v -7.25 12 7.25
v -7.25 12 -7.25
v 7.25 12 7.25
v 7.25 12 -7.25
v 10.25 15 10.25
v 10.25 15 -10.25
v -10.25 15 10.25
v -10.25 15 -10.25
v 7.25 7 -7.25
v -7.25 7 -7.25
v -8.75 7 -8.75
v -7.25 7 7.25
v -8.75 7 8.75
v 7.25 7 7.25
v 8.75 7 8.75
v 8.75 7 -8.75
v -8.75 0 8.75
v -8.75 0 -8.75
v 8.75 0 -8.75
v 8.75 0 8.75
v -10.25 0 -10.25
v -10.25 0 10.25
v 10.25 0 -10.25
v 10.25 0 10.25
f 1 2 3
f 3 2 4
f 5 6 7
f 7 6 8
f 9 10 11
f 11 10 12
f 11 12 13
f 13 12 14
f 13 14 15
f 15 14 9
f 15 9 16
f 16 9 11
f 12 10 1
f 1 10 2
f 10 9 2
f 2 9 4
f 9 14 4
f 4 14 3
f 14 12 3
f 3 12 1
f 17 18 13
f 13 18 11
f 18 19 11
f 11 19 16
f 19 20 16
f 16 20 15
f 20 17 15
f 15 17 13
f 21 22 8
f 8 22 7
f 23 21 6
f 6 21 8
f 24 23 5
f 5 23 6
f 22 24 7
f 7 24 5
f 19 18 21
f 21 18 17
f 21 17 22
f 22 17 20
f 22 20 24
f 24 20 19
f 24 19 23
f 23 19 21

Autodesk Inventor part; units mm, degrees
ref_plane "YZ Plane" through (0, 0, 0) normal (1, 0, 0) x (0, 1, 0)
ref_plane "XZ Plane" through (0, 0, 0) normal (0, 1, 0) x (-1, 0, 0)
ref_plane "XY Plane" through (0, 0, 0) normal (0, 0, 1) x (1, 0, 0)
sketch "Sketch1" plane through (0, 0, 0) normal (0, 1, 0) x (-1, 0, 0)
  line L0 (-10.25, 10.25) -> (10.25, 10.25)
  line L1 (10.25, 10.25) -> (10.25, -10.25)
  line L2 (10.25, -10.25) -> (-10.25, -10.25)
  line L3 (-10.25, -10.25) -> (-10.25, 10.25)
  line L4 (-10.25, 10.25) -> (10.25, -10.25) construction
  line L5 (10.25, 10.25) -> (-10.25, -10.25) construction
  line L6 (-8.75, 8.75) -> (8.75, 8.75)
  line L7 (8.75, 8.75) -> (8.75, -8.75)
  line L8 (8.75, -8.75) -> (-8.75, -8.75)
  line L9 (-8.75, -8.75) -> (-8.75, 8.75)
  line L10 (-8.75, 8.75) -> (8.75, -8.75) construction
  line L11 (8.75, 8.75) -> (-8.75, -8.75) construction
  point P0 (0, 0)
  dimension "d0" = 1.5
  dimension "d1" = 20.5
extrude "Extrusion1" add sketch "Sketch1" along normal blind 7
sketch "Sketch2" plane through (0, 7, 0) normal (0, 1, 0) x (1, 0, 0)
  line L0 (10.25, -10.25) -> (-10.25, -10.25)
  line L1 (-10.25, -10.25) -> (-10.25, 10.25)
  line L2 (-10.25, 10.25) -> (10.25, 10.25)
  line L3 (10.25, 10.25) -> (10.25, -10.25)
  line L4 (10.25, -10.25) -> (-10.25, 10.25) construction
  line L5 (-10.25, -10.25) -> (10.25, 10.25) construction
  line L6 (7.25, -7.25) -> (-7.25, -7.25)
  line L7 (-7.25, -7.25) -> (-7.25, 7.25)
  line L8 (-7.25, 7.25) -> (7.25, 7.25)
  line L9 (7.25, 7.25) -> (7.25, -7.25)
  line L10 (7.25, -7.25) -> (-7.25, 7.25) construction
  line L11 (-7.25, -7.25) -> (7.25, 7.25) construction
  point P0 (0, 0)
  dimension "d4" = 3
extrude "Extrusion2" add sketch "Sketch2" along normal blind 5
sketch "Sketch3" plane through (0, 12, 0) normal (0, 1, 0) x (1, 0, 0)
  line L0 (-10.25, 10.25) -> (10.25, 10.25) projected
  line L1 (10.25, -10.25) -> (-10.25, -10.25)
  line L2 (-10.25, -10.25) -> (-10.25, 10.25)
  line L3 (-10.25, 10.25) -> (10.25, 10.25)
  line L4 (10.25, 10.25) -> (10.25, -10.25)
  line L5 (10.25, -10.25) -> (-10.25, 10.25) construction
  line L6 (-10.25, -10.25) -> (10.25, 10.25) construction
  point P0 (0, 0)
extrude "Extrusion3" add sketch "Sketch3" along normal blind 3
properties part number "Colorimeter_Cap"
